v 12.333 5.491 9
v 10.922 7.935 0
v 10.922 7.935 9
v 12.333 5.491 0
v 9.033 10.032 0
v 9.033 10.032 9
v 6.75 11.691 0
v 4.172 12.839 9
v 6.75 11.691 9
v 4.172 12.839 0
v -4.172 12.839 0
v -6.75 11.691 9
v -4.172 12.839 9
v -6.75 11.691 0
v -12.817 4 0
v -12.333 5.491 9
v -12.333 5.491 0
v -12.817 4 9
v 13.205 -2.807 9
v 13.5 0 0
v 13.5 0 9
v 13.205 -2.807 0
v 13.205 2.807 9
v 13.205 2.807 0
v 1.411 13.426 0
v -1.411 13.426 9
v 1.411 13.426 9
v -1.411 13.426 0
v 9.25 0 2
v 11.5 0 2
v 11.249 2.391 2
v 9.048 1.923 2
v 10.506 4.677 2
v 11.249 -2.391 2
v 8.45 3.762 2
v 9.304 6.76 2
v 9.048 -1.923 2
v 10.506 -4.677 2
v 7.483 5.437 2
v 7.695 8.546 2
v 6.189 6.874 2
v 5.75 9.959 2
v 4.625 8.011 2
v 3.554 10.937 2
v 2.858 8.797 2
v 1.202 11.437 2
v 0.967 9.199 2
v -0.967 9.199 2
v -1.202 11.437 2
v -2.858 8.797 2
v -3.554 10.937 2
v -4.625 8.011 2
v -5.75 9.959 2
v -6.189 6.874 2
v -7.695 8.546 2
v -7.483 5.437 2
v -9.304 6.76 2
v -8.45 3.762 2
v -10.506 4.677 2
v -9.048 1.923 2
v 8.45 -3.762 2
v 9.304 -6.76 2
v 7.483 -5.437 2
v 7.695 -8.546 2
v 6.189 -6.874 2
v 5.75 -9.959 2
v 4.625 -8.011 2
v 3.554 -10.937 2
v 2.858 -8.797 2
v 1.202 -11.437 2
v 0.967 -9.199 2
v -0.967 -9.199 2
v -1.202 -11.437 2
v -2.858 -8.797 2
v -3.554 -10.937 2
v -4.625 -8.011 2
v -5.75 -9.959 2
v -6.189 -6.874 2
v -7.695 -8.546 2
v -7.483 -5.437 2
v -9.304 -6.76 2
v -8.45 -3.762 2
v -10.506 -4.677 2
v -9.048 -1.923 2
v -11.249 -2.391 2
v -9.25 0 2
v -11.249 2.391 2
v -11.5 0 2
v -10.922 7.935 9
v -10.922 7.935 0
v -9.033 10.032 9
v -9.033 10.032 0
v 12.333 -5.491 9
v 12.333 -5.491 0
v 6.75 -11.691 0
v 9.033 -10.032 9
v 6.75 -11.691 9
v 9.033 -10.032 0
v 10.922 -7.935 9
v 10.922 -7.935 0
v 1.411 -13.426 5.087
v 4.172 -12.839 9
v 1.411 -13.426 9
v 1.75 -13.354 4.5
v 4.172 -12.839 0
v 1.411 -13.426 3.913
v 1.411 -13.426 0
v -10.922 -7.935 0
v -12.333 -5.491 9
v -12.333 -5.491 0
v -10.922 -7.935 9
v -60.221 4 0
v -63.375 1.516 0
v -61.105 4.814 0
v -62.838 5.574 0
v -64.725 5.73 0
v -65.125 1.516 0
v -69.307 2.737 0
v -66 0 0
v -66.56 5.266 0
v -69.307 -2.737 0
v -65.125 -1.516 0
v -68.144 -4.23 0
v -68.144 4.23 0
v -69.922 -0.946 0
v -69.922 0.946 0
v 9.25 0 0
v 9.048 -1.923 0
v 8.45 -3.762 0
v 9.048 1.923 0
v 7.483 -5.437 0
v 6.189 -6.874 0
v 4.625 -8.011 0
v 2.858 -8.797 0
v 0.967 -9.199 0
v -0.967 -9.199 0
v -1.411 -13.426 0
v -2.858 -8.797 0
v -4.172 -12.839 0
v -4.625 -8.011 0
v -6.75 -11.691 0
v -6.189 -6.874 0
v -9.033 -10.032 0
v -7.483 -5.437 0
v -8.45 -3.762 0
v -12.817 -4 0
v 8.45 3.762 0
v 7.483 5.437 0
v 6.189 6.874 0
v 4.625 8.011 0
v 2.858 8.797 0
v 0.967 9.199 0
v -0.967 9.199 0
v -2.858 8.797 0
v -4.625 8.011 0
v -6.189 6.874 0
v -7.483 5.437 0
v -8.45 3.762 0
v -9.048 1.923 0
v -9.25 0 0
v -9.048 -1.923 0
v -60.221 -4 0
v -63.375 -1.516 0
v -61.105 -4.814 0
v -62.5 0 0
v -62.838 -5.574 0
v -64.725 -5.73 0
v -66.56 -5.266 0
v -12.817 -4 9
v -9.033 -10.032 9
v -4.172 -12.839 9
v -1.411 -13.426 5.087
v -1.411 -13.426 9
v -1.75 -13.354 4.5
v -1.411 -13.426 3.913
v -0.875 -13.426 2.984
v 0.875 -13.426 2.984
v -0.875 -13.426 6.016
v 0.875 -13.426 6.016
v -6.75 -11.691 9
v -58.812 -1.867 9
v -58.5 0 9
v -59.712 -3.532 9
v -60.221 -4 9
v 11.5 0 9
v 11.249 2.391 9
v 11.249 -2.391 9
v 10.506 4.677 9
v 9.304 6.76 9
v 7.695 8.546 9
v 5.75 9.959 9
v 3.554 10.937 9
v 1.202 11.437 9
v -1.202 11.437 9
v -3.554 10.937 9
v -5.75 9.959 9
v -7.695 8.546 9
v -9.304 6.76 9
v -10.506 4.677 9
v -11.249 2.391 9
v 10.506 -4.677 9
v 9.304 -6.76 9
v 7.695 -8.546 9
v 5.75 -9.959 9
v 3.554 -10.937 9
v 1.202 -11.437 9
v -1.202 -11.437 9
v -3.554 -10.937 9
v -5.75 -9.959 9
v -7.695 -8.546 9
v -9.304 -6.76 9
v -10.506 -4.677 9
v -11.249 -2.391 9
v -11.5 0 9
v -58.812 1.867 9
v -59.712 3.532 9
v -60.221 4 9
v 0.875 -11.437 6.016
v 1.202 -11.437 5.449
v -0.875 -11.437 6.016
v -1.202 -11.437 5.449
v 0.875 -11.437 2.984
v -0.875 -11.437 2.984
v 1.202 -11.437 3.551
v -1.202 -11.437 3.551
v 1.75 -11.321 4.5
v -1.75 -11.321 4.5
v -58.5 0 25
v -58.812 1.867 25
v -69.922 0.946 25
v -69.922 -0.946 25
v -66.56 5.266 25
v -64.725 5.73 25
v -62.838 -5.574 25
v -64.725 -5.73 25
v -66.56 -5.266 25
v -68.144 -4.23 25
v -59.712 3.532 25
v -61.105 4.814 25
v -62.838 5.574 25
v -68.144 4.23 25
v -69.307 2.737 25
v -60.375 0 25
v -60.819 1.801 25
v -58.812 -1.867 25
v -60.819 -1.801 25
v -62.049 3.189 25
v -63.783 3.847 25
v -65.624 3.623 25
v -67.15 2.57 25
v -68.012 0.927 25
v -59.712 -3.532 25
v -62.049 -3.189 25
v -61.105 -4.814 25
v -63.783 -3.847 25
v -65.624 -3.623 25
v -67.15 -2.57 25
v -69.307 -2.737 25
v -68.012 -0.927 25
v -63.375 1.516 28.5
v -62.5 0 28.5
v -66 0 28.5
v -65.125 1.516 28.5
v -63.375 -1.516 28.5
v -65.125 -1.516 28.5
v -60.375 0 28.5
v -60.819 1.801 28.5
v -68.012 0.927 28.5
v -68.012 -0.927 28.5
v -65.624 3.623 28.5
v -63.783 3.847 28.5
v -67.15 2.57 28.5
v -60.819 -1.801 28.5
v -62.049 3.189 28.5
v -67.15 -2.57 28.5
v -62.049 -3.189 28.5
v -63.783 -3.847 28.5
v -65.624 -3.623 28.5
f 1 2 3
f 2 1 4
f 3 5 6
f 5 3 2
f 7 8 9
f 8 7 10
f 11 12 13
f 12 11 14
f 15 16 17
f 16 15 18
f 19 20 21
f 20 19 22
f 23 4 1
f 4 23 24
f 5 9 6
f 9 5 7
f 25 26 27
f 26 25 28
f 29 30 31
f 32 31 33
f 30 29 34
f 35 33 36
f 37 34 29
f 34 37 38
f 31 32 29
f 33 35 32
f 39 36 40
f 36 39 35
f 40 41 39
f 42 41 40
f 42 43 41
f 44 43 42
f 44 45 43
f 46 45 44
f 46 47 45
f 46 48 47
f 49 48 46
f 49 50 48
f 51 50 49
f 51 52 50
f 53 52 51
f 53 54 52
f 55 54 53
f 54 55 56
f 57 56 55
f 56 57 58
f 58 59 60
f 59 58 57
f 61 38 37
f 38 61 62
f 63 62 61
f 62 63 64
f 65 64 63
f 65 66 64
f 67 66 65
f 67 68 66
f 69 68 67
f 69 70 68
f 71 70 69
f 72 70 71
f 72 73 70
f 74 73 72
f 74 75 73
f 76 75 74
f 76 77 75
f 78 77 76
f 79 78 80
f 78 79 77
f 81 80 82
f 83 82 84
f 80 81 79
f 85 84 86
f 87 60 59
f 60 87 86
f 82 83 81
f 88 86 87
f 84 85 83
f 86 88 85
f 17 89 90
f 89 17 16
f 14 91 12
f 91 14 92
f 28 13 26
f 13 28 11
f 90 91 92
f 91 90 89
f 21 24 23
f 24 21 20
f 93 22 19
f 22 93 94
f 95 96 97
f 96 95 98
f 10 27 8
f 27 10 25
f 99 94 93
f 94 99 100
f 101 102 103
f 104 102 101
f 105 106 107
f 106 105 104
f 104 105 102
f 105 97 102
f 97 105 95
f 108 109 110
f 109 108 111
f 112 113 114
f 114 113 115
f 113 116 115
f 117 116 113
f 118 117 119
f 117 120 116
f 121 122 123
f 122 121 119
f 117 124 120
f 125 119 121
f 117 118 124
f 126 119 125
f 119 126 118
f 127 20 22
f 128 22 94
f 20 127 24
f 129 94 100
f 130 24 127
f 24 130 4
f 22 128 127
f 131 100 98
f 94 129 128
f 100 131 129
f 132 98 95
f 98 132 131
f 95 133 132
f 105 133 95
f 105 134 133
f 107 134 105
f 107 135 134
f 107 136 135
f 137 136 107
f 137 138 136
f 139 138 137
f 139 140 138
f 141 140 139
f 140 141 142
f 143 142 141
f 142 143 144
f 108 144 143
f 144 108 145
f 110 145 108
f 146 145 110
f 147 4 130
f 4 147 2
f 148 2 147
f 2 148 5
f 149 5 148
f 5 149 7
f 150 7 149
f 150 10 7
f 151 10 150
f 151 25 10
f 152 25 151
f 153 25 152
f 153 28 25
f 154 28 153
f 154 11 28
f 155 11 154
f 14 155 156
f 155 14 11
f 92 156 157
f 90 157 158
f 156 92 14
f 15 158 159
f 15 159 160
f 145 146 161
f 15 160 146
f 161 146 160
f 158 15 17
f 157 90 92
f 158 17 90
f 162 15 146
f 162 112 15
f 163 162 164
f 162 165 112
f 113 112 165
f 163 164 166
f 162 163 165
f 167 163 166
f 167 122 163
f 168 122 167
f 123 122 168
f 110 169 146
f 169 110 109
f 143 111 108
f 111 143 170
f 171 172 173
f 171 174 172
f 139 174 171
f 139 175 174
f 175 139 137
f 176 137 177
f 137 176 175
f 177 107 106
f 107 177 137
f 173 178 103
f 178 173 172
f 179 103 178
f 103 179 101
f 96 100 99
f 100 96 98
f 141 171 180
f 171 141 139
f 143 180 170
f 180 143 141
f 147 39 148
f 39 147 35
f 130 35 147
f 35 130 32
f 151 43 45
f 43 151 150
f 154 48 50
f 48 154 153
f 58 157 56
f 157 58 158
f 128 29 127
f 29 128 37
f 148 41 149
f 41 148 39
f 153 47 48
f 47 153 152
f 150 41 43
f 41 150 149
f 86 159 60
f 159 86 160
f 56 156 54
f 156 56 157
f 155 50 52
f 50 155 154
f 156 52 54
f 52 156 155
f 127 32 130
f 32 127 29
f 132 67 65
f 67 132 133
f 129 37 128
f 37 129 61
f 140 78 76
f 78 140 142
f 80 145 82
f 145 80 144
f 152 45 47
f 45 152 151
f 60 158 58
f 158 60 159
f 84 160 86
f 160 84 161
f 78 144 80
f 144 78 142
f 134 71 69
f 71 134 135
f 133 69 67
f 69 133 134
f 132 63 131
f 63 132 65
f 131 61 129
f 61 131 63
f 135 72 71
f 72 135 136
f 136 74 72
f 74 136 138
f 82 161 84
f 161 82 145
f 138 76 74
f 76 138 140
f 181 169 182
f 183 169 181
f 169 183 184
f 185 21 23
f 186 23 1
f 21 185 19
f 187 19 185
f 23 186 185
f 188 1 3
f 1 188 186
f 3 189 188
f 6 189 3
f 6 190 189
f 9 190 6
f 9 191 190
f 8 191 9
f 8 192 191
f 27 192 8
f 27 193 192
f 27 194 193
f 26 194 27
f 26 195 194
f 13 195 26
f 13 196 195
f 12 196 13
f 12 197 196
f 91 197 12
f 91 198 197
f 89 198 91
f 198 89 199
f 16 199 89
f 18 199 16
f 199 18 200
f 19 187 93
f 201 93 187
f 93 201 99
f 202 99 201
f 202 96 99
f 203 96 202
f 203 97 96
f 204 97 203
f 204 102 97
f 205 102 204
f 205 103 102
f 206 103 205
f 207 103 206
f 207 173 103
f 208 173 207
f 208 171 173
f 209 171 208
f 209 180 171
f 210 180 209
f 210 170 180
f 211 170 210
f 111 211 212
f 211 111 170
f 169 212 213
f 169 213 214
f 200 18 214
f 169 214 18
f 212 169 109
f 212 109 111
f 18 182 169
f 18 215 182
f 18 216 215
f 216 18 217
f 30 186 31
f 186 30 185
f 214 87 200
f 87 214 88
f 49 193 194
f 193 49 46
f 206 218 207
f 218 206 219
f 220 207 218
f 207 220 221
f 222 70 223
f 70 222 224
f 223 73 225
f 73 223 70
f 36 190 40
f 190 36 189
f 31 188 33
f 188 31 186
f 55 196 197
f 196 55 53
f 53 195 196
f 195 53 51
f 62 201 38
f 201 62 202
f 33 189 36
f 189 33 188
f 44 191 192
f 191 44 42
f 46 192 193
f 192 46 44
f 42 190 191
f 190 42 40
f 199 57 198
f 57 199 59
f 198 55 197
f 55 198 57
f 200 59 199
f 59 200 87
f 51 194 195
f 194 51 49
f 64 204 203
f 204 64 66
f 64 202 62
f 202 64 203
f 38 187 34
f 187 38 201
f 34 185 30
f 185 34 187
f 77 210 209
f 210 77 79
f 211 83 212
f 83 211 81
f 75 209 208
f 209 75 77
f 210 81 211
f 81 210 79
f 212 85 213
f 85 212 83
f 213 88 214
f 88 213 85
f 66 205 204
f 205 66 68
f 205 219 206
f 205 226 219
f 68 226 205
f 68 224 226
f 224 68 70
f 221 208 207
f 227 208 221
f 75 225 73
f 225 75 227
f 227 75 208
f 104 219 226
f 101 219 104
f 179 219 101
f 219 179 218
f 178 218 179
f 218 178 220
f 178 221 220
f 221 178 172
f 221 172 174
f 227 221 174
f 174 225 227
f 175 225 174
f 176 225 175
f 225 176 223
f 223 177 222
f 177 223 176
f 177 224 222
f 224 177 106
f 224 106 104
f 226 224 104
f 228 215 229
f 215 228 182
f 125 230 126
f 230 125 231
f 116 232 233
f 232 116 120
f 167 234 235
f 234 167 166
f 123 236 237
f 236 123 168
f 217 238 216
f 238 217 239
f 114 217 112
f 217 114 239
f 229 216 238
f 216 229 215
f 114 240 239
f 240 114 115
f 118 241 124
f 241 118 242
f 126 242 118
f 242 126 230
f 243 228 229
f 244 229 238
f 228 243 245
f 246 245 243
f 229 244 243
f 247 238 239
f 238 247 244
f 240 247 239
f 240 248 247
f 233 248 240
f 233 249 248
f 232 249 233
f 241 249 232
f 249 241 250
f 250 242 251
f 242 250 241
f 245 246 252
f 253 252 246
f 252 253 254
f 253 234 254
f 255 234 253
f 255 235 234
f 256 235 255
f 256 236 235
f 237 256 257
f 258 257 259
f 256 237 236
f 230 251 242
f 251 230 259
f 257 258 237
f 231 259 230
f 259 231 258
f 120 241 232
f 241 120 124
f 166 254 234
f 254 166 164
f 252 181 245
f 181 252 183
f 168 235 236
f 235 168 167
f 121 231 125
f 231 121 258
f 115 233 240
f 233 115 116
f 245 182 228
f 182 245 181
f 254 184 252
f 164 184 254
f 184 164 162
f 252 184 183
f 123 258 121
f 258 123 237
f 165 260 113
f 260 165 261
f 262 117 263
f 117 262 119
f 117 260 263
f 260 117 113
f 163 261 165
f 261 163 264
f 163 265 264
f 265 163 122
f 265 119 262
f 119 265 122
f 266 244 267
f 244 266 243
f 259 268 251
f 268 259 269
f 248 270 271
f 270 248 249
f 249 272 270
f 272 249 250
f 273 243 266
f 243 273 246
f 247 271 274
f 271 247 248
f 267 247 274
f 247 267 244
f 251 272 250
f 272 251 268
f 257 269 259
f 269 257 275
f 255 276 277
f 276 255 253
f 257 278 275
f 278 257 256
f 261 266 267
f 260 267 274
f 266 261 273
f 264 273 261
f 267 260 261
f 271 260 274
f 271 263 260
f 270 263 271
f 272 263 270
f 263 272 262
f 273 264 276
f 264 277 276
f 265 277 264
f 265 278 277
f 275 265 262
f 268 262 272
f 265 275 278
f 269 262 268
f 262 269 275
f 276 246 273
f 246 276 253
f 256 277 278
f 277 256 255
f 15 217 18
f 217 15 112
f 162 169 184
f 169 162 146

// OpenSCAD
union() {
	difference() {
		union() {
			difference() {
				cylinder(d = 27, h = 2);
				translate(v = [0, 0, -1.0000000000]) {
					cylinder(d = 18.5000000000, h = 4);
				}
			}
			difference() {
				cylinder(d = 27, h = 9);
				translate(v = [0, 0, -4.5000000000]) {
					cylinder(d = 23, h = 18);
				}
			}
		}
		translate(v = [0, 0, 4.5000000000]) {
			rotate(a = [90, 0, 0]) {
				cylinder(d = 3.5000000000, h = 30);
			}
		}
	}
	translate(v = [-36.8750000000, 0, 0]) {
		translate(v = [0, 0, 4.5000000000]) {
			cube(center = true, size = [50.7500000000, 8, 9]);
		}
	}
	translate(v = [-64.2500000000, 0, 0]) {
		union() {
			difference() {
				cylinder(d = 11.5000000000, h = 25);
				translate(v = [0, 0, -12.5000000000]) {
					cylinder(d = 3.5000000000, h = 50);
				}
			}
			translate(v = [0, 0, 25]) {
				difference() {
					cylinder(d = 7.7500000000, h = 3.5000000000);
					translate(v = [0, 0, -1.7500000000]) {
						cylinder(d = 3.5000000000, h = 7.0000000000);
					}
				}
			}
		}
	}
}
